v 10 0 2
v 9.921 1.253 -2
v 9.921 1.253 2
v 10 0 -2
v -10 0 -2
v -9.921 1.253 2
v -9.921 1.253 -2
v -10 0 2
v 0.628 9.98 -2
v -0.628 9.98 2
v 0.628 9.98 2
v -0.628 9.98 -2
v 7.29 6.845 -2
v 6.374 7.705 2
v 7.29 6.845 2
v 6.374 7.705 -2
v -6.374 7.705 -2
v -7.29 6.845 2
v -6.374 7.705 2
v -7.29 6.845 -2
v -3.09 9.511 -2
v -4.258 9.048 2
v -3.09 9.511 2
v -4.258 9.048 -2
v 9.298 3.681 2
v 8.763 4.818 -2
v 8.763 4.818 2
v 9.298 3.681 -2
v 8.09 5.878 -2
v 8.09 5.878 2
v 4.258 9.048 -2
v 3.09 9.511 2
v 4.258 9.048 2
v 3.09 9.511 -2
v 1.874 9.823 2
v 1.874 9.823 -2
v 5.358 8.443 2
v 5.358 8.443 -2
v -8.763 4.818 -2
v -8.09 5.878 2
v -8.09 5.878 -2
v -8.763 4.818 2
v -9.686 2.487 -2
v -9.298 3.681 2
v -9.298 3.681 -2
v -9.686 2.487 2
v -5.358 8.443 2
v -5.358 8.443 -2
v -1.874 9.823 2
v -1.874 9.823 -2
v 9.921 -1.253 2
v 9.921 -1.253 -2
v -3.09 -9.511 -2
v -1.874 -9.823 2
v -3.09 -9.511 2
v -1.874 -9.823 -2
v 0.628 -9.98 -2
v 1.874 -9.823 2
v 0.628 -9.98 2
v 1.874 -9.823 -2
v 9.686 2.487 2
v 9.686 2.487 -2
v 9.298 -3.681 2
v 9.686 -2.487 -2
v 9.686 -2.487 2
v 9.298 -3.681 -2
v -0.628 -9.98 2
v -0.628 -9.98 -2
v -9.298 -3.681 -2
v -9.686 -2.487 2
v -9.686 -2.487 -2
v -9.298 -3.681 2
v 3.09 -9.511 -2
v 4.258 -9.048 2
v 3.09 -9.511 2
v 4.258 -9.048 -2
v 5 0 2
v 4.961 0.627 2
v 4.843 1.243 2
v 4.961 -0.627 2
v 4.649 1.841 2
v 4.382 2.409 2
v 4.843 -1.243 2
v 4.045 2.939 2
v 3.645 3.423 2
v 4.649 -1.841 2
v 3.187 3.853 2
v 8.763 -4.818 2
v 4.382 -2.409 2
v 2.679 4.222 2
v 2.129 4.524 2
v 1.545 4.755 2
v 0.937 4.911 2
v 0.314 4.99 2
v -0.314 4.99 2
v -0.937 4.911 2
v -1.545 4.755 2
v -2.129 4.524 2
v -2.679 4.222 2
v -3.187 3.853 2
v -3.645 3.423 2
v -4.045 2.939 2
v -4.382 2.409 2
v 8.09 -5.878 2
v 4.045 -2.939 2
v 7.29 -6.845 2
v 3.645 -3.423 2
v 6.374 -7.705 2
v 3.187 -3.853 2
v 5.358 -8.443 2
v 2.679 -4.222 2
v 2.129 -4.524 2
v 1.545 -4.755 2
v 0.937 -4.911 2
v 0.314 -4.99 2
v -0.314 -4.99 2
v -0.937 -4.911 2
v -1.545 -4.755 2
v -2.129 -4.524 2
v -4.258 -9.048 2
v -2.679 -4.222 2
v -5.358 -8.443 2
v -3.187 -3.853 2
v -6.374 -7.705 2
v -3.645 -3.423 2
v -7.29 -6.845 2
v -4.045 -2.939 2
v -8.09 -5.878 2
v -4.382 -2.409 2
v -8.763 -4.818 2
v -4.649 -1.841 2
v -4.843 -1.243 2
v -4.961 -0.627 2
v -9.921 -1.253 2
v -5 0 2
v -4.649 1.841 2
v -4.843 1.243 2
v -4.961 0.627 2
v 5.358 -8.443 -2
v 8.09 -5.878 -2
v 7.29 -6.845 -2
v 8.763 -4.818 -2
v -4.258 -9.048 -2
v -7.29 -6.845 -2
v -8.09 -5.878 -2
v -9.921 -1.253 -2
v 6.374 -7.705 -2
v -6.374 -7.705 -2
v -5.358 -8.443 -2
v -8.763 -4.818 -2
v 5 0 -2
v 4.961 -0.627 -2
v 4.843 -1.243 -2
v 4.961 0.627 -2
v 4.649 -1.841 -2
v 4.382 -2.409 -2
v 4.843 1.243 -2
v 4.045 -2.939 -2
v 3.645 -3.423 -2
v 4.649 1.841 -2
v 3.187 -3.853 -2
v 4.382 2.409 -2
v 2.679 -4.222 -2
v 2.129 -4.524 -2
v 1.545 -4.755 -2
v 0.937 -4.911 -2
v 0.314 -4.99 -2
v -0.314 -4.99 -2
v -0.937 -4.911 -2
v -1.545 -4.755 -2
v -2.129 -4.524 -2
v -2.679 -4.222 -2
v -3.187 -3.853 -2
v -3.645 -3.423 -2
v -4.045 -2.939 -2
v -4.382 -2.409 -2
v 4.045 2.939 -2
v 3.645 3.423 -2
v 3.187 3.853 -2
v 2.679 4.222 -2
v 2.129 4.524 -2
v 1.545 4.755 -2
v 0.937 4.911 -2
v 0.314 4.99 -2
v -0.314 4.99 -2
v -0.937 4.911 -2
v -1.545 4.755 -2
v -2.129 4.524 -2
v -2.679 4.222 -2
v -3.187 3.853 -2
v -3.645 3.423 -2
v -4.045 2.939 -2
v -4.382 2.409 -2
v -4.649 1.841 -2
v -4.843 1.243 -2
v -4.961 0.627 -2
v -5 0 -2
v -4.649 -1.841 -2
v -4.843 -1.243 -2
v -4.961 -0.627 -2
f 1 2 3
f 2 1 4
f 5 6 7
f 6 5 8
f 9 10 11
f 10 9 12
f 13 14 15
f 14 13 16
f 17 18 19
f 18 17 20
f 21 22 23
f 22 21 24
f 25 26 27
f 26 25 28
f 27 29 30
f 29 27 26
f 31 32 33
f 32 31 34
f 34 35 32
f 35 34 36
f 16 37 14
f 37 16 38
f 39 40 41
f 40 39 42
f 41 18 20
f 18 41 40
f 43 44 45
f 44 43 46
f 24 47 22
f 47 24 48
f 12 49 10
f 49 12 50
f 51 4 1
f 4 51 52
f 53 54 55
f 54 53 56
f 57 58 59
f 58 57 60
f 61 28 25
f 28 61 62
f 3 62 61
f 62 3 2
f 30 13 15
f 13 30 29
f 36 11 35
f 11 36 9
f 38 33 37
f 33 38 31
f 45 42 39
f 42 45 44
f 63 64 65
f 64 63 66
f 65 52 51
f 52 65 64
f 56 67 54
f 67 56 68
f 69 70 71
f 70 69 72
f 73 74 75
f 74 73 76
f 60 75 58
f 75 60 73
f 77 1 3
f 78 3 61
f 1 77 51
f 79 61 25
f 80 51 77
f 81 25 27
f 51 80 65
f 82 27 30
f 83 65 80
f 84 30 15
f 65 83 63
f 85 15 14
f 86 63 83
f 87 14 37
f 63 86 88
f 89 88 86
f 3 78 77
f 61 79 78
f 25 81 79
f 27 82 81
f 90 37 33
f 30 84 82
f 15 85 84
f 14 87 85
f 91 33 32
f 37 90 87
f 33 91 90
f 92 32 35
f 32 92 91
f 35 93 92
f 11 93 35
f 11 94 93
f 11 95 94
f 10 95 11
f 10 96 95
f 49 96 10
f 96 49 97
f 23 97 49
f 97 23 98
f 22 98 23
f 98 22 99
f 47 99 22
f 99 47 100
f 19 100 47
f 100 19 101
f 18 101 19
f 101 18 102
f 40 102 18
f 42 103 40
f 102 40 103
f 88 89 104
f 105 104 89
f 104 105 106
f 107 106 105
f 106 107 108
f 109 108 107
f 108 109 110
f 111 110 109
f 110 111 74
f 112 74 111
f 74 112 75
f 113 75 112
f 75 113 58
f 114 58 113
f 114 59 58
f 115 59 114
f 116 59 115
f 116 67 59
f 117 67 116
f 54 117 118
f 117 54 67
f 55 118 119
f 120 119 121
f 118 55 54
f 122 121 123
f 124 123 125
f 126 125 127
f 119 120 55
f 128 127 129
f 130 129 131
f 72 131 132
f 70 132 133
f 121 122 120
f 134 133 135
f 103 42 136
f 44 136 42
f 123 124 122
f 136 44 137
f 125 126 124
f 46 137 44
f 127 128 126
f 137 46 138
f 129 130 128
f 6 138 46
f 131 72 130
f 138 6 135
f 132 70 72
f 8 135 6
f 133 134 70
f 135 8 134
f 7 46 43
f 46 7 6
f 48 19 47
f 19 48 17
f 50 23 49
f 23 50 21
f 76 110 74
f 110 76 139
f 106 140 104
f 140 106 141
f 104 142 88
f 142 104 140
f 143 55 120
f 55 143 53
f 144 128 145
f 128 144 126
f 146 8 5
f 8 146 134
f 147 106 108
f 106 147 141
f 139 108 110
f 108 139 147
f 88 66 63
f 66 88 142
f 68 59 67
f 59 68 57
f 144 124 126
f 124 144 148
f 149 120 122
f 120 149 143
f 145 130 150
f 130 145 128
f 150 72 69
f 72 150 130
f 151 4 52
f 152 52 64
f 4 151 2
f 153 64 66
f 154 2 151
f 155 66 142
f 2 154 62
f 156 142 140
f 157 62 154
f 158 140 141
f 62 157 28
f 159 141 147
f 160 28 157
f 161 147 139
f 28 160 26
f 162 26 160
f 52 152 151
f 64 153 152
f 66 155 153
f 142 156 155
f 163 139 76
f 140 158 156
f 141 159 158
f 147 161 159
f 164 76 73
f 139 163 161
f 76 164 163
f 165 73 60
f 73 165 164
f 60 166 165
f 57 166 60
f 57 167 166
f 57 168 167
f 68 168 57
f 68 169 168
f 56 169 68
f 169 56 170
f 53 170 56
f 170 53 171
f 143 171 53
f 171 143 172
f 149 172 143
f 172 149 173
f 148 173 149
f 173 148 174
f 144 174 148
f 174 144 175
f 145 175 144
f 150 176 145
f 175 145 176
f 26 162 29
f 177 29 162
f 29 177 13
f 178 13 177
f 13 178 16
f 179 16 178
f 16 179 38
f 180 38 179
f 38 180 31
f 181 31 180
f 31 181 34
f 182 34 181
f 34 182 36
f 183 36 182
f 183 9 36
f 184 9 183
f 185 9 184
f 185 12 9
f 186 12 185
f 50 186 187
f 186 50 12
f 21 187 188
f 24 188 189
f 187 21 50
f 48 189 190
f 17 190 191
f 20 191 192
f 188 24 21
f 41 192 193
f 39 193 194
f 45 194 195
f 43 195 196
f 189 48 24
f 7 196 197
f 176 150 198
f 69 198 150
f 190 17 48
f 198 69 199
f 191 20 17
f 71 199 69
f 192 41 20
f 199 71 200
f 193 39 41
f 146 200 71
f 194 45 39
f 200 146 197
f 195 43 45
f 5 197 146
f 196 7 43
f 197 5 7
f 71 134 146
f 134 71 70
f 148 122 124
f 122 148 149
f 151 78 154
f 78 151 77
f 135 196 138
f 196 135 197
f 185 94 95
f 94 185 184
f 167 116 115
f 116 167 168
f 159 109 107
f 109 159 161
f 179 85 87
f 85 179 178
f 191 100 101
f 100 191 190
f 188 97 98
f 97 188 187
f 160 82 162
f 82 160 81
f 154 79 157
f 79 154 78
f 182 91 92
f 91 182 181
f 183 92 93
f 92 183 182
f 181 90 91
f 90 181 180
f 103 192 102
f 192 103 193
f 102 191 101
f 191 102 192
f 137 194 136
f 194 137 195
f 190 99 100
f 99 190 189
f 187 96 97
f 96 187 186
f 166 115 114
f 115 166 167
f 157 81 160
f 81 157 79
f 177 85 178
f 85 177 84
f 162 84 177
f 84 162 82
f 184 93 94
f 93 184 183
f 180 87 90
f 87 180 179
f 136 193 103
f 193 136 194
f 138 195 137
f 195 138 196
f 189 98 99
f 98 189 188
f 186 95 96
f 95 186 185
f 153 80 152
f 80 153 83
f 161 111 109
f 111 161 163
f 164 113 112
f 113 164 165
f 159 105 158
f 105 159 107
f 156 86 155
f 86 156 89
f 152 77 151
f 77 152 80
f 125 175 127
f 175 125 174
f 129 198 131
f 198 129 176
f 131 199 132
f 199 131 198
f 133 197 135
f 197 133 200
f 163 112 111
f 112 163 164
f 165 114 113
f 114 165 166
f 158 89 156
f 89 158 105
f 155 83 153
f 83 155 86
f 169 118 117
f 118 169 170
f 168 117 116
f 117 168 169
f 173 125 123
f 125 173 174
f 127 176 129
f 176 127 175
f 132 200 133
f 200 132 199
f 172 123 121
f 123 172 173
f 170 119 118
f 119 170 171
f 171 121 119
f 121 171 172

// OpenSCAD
$fn = 50;


difference() {
	union() {
		translate(v = [0, 0, -2.0000000000]) {
			cylinder(h = 4, r = 10.0000000000);
		}
	}
	union() {
		translate(v = [0, 0, -100.0000000000]) {
			cylinder(h = 200, r = 5.0000000000);
		}
	}
}
